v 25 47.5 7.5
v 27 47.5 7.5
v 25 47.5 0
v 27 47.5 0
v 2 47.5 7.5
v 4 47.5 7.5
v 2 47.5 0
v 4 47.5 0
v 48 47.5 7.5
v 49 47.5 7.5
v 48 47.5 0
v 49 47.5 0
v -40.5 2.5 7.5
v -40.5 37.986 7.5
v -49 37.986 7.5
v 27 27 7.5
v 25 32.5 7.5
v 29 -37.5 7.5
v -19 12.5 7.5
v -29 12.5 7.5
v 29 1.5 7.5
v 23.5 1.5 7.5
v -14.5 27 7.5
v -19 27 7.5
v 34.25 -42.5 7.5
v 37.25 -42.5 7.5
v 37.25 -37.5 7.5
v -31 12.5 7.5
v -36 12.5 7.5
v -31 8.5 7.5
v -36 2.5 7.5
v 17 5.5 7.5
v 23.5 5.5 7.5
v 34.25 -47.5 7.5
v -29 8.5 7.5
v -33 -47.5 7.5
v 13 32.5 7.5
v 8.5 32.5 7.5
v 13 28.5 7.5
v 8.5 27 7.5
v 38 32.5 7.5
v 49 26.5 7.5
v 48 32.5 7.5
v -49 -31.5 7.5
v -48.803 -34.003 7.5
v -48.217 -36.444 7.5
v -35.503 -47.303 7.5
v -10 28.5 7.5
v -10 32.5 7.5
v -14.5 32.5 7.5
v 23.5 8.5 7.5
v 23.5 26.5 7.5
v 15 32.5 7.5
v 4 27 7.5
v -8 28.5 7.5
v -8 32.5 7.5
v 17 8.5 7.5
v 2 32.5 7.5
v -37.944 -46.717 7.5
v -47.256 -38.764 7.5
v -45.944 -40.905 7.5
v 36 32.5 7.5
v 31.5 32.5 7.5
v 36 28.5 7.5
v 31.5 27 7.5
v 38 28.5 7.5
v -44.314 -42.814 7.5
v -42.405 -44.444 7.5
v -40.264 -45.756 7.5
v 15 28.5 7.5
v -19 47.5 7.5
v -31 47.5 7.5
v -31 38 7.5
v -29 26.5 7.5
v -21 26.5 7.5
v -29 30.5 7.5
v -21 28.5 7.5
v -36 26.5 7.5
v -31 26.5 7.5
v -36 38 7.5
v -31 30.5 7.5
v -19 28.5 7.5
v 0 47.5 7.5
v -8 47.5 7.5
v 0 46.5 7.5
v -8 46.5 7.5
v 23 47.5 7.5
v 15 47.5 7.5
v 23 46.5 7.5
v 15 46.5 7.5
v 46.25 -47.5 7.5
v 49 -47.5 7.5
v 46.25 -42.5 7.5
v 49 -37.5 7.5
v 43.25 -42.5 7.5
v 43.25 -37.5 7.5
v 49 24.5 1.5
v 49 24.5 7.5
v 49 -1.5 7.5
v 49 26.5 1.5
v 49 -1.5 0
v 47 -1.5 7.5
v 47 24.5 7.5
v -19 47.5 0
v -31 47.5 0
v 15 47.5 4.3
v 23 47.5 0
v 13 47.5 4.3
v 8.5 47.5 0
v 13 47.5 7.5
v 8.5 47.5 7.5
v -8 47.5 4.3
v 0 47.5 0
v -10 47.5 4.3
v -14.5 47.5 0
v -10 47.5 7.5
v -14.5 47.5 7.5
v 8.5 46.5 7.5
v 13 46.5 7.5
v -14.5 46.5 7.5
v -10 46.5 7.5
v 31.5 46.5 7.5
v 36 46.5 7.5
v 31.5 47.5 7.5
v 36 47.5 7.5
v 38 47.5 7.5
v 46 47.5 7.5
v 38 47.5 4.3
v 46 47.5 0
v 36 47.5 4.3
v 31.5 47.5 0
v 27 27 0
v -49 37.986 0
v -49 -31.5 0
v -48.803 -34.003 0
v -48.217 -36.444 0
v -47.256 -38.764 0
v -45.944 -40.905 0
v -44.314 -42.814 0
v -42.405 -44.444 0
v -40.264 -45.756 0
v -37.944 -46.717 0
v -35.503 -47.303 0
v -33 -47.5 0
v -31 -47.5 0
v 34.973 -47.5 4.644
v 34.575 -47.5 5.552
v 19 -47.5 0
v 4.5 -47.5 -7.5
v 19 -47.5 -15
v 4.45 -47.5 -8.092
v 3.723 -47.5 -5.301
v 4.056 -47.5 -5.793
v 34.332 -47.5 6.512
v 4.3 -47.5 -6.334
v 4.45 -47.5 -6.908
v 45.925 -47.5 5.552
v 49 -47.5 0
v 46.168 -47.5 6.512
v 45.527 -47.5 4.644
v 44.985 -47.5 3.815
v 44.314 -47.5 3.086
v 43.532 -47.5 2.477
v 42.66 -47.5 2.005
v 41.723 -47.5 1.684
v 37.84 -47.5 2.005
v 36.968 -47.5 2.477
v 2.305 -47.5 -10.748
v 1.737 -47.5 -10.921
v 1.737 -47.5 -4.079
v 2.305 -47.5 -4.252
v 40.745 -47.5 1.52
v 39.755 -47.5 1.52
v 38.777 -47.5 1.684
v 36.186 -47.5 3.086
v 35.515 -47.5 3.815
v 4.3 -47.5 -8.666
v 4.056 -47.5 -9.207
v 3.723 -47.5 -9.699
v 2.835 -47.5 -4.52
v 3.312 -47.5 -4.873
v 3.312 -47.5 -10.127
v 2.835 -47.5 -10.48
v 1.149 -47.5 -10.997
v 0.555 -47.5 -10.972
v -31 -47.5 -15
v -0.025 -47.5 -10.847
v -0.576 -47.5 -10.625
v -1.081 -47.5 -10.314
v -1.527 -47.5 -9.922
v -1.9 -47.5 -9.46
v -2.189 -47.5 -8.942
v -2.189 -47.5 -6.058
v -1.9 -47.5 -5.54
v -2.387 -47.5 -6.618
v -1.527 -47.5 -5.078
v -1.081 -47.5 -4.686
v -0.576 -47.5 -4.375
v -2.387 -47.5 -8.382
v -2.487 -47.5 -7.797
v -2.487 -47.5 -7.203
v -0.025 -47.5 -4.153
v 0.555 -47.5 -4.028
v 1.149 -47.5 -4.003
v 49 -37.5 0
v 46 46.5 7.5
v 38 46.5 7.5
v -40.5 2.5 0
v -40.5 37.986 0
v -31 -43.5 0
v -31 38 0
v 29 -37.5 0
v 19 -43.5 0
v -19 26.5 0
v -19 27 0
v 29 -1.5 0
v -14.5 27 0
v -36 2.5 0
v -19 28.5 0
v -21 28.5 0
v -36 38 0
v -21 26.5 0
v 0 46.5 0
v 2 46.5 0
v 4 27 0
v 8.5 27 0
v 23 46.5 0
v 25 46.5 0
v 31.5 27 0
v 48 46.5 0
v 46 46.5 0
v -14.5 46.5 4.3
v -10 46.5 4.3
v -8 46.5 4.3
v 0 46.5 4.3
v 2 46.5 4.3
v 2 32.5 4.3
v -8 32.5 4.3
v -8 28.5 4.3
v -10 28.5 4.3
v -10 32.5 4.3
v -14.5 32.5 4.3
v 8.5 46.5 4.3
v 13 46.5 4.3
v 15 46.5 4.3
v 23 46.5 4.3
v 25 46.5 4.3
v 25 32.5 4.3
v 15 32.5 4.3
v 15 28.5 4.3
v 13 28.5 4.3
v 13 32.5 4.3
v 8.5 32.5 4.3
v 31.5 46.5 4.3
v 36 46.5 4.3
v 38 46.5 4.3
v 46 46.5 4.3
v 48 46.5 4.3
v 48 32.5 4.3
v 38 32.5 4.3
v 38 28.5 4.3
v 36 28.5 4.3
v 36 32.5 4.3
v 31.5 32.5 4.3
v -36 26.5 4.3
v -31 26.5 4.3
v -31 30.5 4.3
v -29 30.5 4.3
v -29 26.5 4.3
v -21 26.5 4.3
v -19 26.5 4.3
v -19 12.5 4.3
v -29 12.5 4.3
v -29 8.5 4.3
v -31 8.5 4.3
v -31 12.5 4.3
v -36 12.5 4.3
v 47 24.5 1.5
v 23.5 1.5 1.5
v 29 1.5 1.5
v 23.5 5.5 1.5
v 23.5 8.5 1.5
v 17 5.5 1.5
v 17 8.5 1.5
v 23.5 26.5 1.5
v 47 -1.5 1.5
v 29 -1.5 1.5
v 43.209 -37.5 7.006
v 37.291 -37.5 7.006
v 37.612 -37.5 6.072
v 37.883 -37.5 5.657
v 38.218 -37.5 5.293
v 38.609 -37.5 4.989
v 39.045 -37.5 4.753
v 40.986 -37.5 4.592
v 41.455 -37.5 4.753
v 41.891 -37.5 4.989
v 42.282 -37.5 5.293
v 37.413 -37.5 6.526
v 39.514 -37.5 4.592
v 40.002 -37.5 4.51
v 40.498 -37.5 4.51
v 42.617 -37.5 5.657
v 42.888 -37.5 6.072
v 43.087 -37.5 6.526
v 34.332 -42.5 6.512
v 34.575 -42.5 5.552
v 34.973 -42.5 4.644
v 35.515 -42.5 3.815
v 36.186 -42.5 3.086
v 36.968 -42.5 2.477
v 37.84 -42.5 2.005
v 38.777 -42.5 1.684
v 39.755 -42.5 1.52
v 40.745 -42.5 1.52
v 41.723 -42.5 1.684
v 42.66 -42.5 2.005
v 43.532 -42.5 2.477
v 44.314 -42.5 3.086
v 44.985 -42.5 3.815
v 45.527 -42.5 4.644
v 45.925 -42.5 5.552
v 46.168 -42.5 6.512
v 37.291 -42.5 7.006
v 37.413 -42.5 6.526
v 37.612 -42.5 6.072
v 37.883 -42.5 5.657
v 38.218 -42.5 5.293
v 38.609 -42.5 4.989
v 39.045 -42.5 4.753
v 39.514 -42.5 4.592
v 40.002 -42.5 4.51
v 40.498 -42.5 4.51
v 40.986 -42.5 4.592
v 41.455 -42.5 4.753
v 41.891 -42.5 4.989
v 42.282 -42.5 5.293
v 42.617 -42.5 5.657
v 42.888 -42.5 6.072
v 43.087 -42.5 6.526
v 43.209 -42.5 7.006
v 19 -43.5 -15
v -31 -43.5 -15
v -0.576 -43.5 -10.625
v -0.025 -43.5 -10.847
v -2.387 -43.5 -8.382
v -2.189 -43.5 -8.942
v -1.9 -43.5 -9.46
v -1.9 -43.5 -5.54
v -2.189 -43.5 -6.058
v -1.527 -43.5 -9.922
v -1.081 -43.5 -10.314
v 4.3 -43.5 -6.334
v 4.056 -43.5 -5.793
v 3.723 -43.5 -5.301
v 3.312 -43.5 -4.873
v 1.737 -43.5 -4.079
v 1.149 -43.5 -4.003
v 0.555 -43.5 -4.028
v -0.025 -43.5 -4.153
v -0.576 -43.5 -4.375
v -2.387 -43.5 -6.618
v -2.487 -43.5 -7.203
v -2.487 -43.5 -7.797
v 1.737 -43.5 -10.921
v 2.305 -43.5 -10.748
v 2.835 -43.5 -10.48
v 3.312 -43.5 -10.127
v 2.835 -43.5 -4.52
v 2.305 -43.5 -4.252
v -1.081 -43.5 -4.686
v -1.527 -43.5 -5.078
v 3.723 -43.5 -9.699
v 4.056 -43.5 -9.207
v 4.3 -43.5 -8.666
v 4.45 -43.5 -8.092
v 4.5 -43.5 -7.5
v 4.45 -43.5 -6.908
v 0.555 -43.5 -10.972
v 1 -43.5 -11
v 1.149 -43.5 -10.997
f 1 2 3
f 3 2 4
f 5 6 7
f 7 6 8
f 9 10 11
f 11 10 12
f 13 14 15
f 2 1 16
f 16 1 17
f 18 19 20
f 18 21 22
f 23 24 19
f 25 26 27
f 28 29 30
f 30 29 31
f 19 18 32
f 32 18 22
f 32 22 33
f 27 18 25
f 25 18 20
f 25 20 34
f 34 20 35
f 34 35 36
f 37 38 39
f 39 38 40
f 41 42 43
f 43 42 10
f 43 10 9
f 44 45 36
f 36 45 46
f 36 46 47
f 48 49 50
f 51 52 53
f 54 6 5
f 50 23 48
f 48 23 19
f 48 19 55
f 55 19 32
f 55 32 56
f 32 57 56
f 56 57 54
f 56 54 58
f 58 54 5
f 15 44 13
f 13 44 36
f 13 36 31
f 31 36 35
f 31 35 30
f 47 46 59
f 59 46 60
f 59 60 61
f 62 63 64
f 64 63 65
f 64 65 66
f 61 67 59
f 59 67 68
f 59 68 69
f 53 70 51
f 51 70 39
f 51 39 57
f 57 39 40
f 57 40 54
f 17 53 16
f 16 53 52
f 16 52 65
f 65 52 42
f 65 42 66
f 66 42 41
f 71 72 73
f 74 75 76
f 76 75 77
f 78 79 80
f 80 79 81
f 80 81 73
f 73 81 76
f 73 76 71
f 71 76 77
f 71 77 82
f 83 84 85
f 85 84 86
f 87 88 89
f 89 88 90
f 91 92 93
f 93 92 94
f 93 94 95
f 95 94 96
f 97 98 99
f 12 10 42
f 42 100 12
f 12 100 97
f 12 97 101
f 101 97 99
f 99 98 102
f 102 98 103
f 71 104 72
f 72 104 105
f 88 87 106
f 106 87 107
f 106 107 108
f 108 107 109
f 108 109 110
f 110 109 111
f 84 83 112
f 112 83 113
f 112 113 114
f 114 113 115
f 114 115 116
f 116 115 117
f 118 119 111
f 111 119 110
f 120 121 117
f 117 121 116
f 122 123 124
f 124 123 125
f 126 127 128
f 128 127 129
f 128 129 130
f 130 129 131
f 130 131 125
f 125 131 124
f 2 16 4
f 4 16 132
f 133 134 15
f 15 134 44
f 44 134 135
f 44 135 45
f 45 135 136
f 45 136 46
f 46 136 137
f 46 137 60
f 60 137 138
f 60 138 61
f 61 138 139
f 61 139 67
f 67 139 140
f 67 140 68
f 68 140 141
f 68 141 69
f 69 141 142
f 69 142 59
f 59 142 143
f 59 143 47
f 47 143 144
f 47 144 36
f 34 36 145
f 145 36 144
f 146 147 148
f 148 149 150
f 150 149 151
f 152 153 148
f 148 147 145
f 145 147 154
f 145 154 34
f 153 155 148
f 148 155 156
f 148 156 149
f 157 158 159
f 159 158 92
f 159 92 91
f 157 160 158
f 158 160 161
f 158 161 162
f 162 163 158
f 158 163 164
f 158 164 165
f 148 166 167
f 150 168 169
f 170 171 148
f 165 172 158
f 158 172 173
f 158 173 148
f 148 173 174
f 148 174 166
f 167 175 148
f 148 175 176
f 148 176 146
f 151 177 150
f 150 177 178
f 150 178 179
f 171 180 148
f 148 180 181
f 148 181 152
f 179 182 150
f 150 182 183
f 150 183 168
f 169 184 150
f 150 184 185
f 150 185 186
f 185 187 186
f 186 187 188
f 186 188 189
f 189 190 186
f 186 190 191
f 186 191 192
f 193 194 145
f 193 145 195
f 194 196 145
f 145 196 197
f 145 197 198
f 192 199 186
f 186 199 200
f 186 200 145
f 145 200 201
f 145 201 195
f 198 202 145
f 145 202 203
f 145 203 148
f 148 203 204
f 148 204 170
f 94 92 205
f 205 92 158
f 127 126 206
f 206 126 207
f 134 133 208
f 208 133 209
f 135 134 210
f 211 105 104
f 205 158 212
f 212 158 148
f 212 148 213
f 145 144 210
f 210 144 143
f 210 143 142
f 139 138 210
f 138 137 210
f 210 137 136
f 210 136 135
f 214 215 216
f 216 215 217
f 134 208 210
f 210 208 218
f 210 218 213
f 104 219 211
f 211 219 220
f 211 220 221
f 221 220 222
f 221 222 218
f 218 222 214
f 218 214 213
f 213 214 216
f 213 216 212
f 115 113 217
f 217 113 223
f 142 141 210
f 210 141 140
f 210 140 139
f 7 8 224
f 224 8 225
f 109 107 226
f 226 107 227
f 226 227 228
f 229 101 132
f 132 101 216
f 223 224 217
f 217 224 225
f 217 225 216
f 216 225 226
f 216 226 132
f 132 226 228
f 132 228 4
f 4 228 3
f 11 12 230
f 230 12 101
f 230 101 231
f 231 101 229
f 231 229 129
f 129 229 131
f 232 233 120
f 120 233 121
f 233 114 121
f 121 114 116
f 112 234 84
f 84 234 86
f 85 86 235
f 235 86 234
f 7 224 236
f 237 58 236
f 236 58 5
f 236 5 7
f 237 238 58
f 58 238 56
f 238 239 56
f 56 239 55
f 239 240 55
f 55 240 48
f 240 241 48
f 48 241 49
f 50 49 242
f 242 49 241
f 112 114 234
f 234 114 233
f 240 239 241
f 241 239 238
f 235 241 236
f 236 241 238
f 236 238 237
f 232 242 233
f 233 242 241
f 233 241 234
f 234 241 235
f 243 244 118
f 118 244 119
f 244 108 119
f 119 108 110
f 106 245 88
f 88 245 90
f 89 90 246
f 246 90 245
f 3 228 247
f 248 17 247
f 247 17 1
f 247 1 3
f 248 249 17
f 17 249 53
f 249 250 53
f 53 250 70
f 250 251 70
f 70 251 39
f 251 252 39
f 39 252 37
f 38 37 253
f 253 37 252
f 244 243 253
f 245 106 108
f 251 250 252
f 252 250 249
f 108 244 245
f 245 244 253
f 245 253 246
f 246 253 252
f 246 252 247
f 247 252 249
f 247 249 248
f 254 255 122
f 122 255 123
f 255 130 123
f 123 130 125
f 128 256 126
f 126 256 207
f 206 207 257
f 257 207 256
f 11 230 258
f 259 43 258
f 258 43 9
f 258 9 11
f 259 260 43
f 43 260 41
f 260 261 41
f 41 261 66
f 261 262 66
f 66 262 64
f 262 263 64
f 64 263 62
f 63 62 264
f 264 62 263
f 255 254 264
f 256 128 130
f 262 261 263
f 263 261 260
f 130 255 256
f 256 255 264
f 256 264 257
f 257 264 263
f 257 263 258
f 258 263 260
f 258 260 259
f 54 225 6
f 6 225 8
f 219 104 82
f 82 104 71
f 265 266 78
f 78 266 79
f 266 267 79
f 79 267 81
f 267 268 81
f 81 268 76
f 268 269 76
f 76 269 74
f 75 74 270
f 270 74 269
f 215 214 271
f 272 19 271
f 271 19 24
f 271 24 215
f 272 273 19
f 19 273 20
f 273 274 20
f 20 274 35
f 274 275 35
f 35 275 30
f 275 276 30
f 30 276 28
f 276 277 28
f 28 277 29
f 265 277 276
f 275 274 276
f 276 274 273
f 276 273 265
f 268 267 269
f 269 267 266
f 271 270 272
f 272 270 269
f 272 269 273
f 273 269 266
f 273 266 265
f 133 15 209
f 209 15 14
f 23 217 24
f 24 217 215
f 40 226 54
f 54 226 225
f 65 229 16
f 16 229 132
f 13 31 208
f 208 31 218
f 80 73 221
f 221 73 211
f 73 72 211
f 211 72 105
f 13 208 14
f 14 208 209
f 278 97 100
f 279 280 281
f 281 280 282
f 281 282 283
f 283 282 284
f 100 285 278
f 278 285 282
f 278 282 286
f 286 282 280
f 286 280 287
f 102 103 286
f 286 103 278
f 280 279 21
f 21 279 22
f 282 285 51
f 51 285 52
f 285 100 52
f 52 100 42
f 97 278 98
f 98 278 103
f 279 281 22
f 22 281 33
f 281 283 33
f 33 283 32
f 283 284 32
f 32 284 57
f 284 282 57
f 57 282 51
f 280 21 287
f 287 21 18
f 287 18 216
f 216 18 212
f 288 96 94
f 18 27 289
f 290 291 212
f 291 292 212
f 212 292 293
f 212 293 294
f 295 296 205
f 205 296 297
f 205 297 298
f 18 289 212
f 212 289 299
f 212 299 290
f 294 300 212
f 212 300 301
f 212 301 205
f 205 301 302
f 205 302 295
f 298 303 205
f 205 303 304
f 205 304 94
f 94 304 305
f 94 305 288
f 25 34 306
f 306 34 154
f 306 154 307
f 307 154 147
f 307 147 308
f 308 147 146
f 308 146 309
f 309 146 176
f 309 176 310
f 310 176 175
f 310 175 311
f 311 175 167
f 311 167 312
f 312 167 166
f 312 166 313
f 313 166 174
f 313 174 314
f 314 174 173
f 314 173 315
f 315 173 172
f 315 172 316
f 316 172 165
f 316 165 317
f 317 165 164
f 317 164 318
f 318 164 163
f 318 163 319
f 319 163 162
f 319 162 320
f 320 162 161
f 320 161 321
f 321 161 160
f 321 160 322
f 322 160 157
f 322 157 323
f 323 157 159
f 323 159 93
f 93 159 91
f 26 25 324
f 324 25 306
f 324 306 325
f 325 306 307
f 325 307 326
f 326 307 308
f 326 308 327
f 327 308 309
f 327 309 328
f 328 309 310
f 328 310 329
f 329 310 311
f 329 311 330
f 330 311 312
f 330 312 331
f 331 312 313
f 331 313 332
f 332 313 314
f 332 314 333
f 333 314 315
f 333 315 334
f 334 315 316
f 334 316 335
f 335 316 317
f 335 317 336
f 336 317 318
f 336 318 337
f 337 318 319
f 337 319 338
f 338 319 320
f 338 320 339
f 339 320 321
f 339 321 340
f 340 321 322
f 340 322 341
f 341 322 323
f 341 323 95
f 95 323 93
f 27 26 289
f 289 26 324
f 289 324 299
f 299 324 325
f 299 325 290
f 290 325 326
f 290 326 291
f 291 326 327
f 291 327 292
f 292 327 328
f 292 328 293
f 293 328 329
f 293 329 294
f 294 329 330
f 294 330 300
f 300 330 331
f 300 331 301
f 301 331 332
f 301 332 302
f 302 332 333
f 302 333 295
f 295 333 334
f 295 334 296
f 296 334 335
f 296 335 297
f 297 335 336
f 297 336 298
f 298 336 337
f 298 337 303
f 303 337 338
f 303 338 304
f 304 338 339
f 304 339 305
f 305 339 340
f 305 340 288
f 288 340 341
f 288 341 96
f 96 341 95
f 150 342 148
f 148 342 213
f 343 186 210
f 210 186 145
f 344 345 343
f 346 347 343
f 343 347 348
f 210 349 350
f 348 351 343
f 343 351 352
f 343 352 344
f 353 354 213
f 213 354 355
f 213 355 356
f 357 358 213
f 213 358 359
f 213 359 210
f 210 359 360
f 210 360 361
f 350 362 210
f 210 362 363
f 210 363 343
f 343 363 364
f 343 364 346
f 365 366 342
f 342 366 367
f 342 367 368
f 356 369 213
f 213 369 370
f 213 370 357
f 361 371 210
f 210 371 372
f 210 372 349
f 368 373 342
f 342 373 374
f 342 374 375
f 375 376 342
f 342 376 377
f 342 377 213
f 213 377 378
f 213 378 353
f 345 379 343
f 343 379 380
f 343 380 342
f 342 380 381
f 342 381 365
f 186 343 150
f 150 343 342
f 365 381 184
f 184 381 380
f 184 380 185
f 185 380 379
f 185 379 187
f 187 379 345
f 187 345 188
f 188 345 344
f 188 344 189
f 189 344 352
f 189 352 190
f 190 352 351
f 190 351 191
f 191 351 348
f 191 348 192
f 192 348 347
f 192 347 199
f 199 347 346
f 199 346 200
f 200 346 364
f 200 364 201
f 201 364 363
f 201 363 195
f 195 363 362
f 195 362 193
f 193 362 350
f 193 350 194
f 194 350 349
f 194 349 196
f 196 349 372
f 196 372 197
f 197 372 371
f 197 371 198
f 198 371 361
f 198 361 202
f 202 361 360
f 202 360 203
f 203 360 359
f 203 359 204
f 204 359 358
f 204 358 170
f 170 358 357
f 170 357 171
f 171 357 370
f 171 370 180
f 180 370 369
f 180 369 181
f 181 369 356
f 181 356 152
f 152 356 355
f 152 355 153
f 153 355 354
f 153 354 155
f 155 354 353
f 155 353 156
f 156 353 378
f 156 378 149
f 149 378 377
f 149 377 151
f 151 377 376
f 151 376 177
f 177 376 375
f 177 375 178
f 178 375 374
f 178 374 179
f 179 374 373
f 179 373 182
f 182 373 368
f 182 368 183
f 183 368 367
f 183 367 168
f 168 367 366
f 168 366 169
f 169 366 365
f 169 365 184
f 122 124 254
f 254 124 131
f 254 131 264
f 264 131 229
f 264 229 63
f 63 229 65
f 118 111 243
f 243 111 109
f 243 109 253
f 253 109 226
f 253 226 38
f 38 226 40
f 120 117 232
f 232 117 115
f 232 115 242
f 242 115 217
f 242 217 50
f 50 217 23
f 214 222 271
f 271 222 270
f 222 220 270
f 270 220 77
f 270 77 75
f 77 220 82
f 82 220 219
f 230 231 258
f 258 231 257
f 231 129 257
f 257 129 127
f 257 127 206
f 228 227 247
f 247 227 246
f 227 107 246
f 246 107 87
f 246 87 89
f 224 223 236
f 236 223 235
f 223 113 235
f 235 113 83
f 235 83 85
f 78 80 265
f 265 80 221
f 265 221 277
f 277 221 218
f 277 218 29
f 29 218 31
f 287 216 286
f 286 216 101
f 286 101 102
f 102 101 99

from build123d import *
from OCP.BRepAlgoAPI import BRepAlgoAPI_Cut
from OCP.TopTools import TopTools_ListOfShape
from build123d.topology import SkipClean

# Parameters (mm, degrees)
BOSS_EXTRUDE1_DEPTH = 7.5
CUT_EXTRUDE1_DEPTH  = 3.2
CUT_EXTRUDE4_REACH  = 70.655
SKETCH5_W           = 3
SKETCH5_H           = 17
CUT_EXTRUDE5_REACH  = 70.655
SKETCH8_W           = 12
SKETCH8_H           = 37
CUT_EXTRUDE6_DEPTH  = 3.2
SKETCH10_W          = 10
SKETCH10_H          = 7.5
BOSS_EXTRUDE2_DEPTH = 27.486353186
SKETCH11_W          = 3
SKETCH11_H          = 7.5
CUT_EXTRUDE7_DEPTH  = 3.5
SKETCH12_W          = 2
SKETCH12_H          = 7.5
CUT_EXTRUDE8_DEPTH  = 4
SKETCH13_W          = 2
SKETCH13_H          = 7.5
CUT_EXTRUDE9_DEPTH  = 4
SKETCH14_W          = 7.5
SKETCH14_H          = 9.5
CUT_EXTRUDE10_DEPTH = 6
SKETCH16_W          = 1.5
SKETCH16_H          = 7.5
CUT_EXTRUDE12_DEPTH = 35.486360958
CUT_EXTRUDE13_DEPTH = 6
SKETCH19_W          = 17.5
SKETCH19_H          = 32
BOSS_EXTRUDE3_DEPTH = 7.5
CUT_EXTRUDE14_DEPTH = 6
SKETCH20_W          = 18
SKETCH20_H          = 6
CUT_EXTRUDE15_DEPTH = 6
SKETCH21_W          = 20
SKETCH21_H          = 33
CUT_EXTRUDE16_DEPTH = 11
CUT_EXTRUDE17_DEPTH = 5
CUT_EXTRUDE18_DEPTH = 10
SKETCH23_W          = 50
SKETCH23_H          = 4
BOSS_EXTRUDE4_DEPTH = 15
SKETCH25_R          = 3.5
CUT_EXTRUDE19_DEPTH = 10
SKETCH26_W          = 1.5
SKETCH26_H          = 20.5
CUT_EXTRUDE20_DEPTH = 8
SKETCH27_W          = 1.5
SKETCH27_H          = 20.5
CUT_EXTRUDE21_DEPTH = 8
SKETCH28_W          = 1.5
SKETCH28_H          = 20.5
CUT_EXTRUDE22_DEPTH = 8
CUT_EXTRUDE25_REACH = 73.857
SKETCH35_W          = 2
SKETCH35_H          = 2
SKETCH35_H_2        = 1
SKETCH36_W          = 1
SKETCH36_H          = 7.5
CUT_EXTRUDE26_DEPTH = 35.5
SKETCH37_W          = 7.5
SKETCH37_H          = 3
CUT_EXTRUDE27_DEPTH = 20


with BuildPart() as part:
    # Sketch1 → Boss-Extrude1 (new body)
    with BuildSketch(Plane.XY):
        with BuildLine():
            Line((-33, -47.5), (49, -47.5))
            Line((49, -47.5), (49, -29.5))
            Line((49, -29.5), (31.5, -29.5))
            Line((31.5, -29.5), (31.5, 2.5))
            Line((31.5, 2.5), (49, 2.5))
            Line((49, 2.5), (49, 47.5))
            Line((49, 47.5), (30, 47.5))
            Line((30, 47.5), (30, 30.5))
            Line((30, 30.5), (27, 30.5))
            Line((27, 30.5), (27, 47.5))
            Line((27, 47.5), (-49, 47.5))
            Line((-49, 47.5), (-49, -31.5))
            ThreePointArc((-49, -31.5), (-44.313708499, -42.813708499), (-33, -47.5))
        make_face()
    extrude(amount=BOSS_EXTRUDE1_DEPTH)

    # Sketch2 → Cut-Extrude1 (cut)
    with BuildSketch(Plane.XY.offset(7.5)):
        Polygon((30, 40), (31, 40), (31, 32.5), (36, 32.5), (36, 28.5), (38, 28.5), (38, 32.5), (48, 32.5), (48, 46.5), (38, 46.5), (38, 47.5), (36, 47.5), (36, 46.5), (31, 46.5), (31, 45), (30, 45), align=None)
        Polygon((-16, 40), (-15, 40), (-15, 32.5), (-10, 32.5), (-10, 28.5), (-8, 28.5), (-8, 32.5), (2, 32.5), (2, 46.5), (-8, 46.5), (-8, 47.5), (-10, 47.5), (-10, 46.5), (-15, 46.5), (-15, 45), (-16, 45), align=None)
        Polygon((7, 40), (8, 40), (8, 32.5), (13, 32.5), (13, 28.5), (15, 28.5), (15, 32.5), (25, 32.5), (25, 46.5), (15, 46.5), (15, 47.5), (13, 47.5), (13, 46.5), (8, 46.5), (8, 45), (7, 45), align=None)
    extrude(amount=-CUT_EXTRUDE1_DEPTH, mode=Mode.SUBTRACT)

    # Sketch5 → Cut-Extrude4 (cut, up to next)
    with BuildSketch(Plane.XY.offset(7.5), mode=Mode.PRIVATE) as cut_extrude4_sk1:
        with Locations((5.5, 39)):
            Rectangle(SKETCH5_W, SKETCH5_H)
    cut_extrude4_tool1 = extrude(cut_extrude4_sk1.sketch, amount=-CUT_EXTRUDE4_REACH, mode=Mode.PRIVATE) & part.part
    # Sketch5 → Cut-Extrude4 (cut, up to next)
    with BuildSketch(Plane.XY.offset(7.5), mode=Mode.PRIVATE) as cut_extrude4_sk2:
        with Locations((-17.5, 39)):
            Rectangle(SKETCH5_W, SKETCH5_H)
    cut_extrude4_tool2 = extrude(cut_extrude4_sk2.sketch, amount=-CUT_EXTRUDE4_REACH, mode=Mode.PRIVATE) & part.part
    add(cut_extrude4_tool1.solids().sort_by_distance((5.5, 39, 7.5))[0], mode=Mode.SUBTRACT)
    add(cut_extrude4_tool2.solids().sort_by_distance((-17.5, 39, 7.5))[0], mode=Mode.SUBTRACT)

    # Sketch8 → Cut-Extrude5 (cut, up to next)
    with BuildSketch(Plane.XY.offset(7.5), mode=Mode.PRIVATE) as cut_extrude5_sk1:
        with Locations((-43, 29)):
            Rectangle(SKETCH8_W, SKETCH8_H)
    cut_extrude5_tool1 = extrude(cut_extrude5_sk1.sketch, amount=-CUT_EXTRUDE5_REACH, mode=Mode.PRIVATE) & part.part
    add(cut_extrude5_tool1.solids().sort_by_distance((-43, 29, 7.5))[0], mode=Mode.SUBTRACT)

    # Sketch9 → Cut-Extrude6 (cut)
    with BuildSketch(Plane.XY.offset(7.5)):
        Polygon((-37, 20), (-36, 20), (-36, 12.5), (-31, 12.5), (-31, 8.5), (-29, 8.5), (-29, 12.5), (-19, 12.5), (-19, 26.5), (-29, 26.5), (-29, 30.5), (-31, 30.5), (-31, 26.5), (-36, 26.5), (-36, 25), (-37, 25), align=None)
    extrude(amount=-CUT_EXTRUDE6_DEPTH, mode=Mode.SUBTRACT)

    # Sketch10 → Boss-Extrude2 (add)
    with BuildSketch(Plane(origin=(0, 10.5, 0), x_dir=(1, 0, 0), z_dir=(0, 1, 0))):
        with Locations((-44, -3.75)):
            Rectangle(SKETCH10_W, SKETCH10_H)
    extrude(amount=BOSS_EXTRUDE2_DEPTH)

    # Sketch11 → Cut-Extrude7 (cut)
    with BuildSketch(Plane(origin=(0, 30.5, 0), x_dir=(1, 0, 0), z_dir=(0, 1, 0))):
        with Locations((-17.5, -3.75)):
            Rectangle(SKETCH11_W, SKETCH11_H)
        with Locations((5.5, -3.75)):
            Rectangle(SKETCH11_W, SKETCH11_H)
        with Locations((28.5, -3.75)):
            Rectangle(SKETCH11_W, SKETCH11_H)
    extrude(amount=-CUT_EXTRUDE7_DEPTH, mode=Mode.SUBTRACT)

    # Sketch12 → Cut-Extrude8 (cut)
    with BuildSketch(Plane(origin=(0, 10.5, 0), x_dir=(1, 0, 0), z_dir=(0, 1, 0))):
        with Locations((-38, -3.75)):
            Rectangle(SKETCH12_W, SKETCH12_H)
    extrude(amount=-CUT_EXTRUDE8_DEPTH, mode=Mode.SUBTRACT)

    # Sketch13 → Cut-Extrude9 (cut)
    with BuildSketch(Plane(origin=(0, 6.5, 0), x_dir=(1, 0, 0), z_dir=(0, 1, 0))):
        with Locations((-38, -3.75)):
            Rectangle(SKETCH13_W, SKETCH13_H)
    extrude(amount=-CUT_EXTRUDE9_DEPTH, mode=Mode.SUBTRACT)

    # Sketch14 → Cut-Extrude10 (cut)
    with BuildSketch(Plane.ZY.offset(37)):
        with Locations((3.75, 42.75)):
            Rectangle(SKETCH14_W, SKETCH14_H)
    extrude(amount=-CUT_EXTRUDE10_DEPTH, mode=Mode.SUBTRACT)


with BuildPart() as cut_extrude12_tool:
    # Sketch16 → Cut-Extrude12 (new body)
    with BuildSketch(Plane(origin=(0, 37.986353186, 0), x_dir=(1, 0, 0), z_dir=(0, 1, 0))):
        with Locations((-39.75, -3.75)):
            Rectangle(SKETCH16_W, SKETCH16_H)
    extrude(amount=-CUT_EXTRUDE12_DEPTH)


with BuildPart() as part_1:
    add(part.part)

    # Cut-Extrude12: cut by cut_extrude12_tool, with a tolerance
    cut_extrude12_stock = TopTools_ListOfShape()
    cut_extrude12_stock.Append(part_1.part.wrapped)
    cut_extrude12_tools = TopTools_ListOfShape()
    cut_extrude12_tools.Append(cut_extrude12_tool.part.wrapped)
    cut_extrude12_cut = BRepAlgoAPI_Cut()
    cut_extrude12_cut.SetArguments(cut_extrude12_stock)
    cut_extrude12_cut.SetTools(cut_extrude12_tools)
    cut_extrude12_cut.SetFuzzyValue(0.00001)
    cut_extrude12_cut.Build()
    add(Compound.cast(cut_extrude12_cut.Shape()).solids(), mode=Mode.REPLACE)

    # Sketch18 → Cut-Extrude13 (cut)
    with SkipClean():  # the faces are left unmerged after this step: merging them gives an invalid solid
        with BuildSketch(Plane.XY.offset(7.5)):
            Polygon((23.5, 5.5), (23.5, 1.5), (47, 1.5), (47, 24.5), (49, 24.5), (49, 26.5), (47, 26.5), (23.5, 26.5), (23.5, 8.5), (17, 8.5), (17, 5.5), align=None)
        extrude(amount=-CUT_EXTRUDE13_DEPTH, mode=Mode.SUBTRACT)

    # Sketch19 → Boss-Extrude3 (add)
    with SkipClean():  # the faces are left unmerged after this step: merging them gives an invalid solid
        with BuildSketch(Plane(origin=(0, 0, 0), x_dir=(-1, 0, 0), z_dir=(0, 0, -1))):
            with Locations((-40.25, -13.5)):
                Rectangle(SKETCH19_W, SKETCH19_H)
        extrude(amount=-BOSS_EXTRUDE3_DEPTH)

    # Sketch18<2> → Cut-Extrude14 (cut)
    with SkipClean():  # the faces are left unmerged after this step: merging them gives an invalid solid
        with BuildSketch(Plane.XY.offset(7.5)):
            Polygon((23.5, 5.5), (23.5, 1.5), (47, 1.5), (47, 24.5), (49, 24.5), (49, 26.5), (47, 26.5), (23.5, 26.5), (23.5, 8.5), (17, 8.5), (17, 5.5), align=None)
        extrude(amount=-CUT_EXTRUDE14_DEPTH, mode=Mode.SUBTRACT)

    # Sketch20 → Cut-Extrude15 (cut)
    with SkipClean():  # the faces are left unmerged after this step: merging them gives an invalid solid
        with BuildSketch(Plane.XY.offset(7.5)):
            with Locations((38, -1.5)):
                Rectangle(SKETCH20_W, SKETCH20_H)
        extrude(amount=-CUT_EXTRUDE15_DEPTH, mode=Mode.SUBTRACT)

    # Sketch21 → Cut-Extrude16 (cut)
    with SkipClean():  # the faces are left unmerged after this step: merging them gives an invalid solid
        with BuildSketch(Plane.XY.offset(7.5)):
            with Locations((39, -21)):
                Rectangle(SKETCH21_W, SKETCH21_H)
        extrude(amount=-CUT_EXTRUDE16_DEPTH, mode=Mode.SUBTRACT)

    # Sketch3 → Cut-Extrude17 (cut)
    with SkipClean():  # the faces are left unmerged after this step: merging them gives an invalid solid
        with BuildSketch(Plane.XZ.offset(47.5)):
            with BuildLine():
                Line((34.25, 7.5), (46.25, 7.5))
                ThreePointArc((46.25, 7.5), (40.25, 1.5), (34.25, 7.5))
            make_face()
        extrude(amount=-CUT_EXTRUDE17_DEPTH, mode=Mode.SUBTRACT)

    # Sketch22 → Cut-Extrude18 (cut)
    with SkipClean():  # the faces are left unmerged after this step: merging them gives an invalid solid
        with BuildSketch(Plane.XZ.offset(42.5)):
            with BuildLine():
                Line((37.25, 7.5), (43.25, 7.5))
                ThreePointArc((43.25, 7.5), (40.25, 4.5), (37.25, 7.5))
            make_face()
        extrude(amount=-CUT_EXTRUDE18_DEPTH, mode=Mode.SUBTRACT)

    # Sketch23 → Boss-Extrude4 (add)
    with SkipClean():  # the faces are left unmerged after this step: merging them gives an invalid solid
        with BuildSketch(Plane(origin=(0, 0, 0), x_dir=(-1, 0, 0), z_dir=(0, 0, -1))):
            with Locations((6, -45.5)):
                Rectangle(SKETCH23_W, SKETCH23_H)
        extrude(amount=BOSS_EXTRUDE4_DEPTH)

    # Sketch25 → Cut-Extrude19 (cut)
    with SkipClean():  # the faces are left unmerged after this step: merging them gives an invalid solid
        with BuildSketch(Plane(origin=(0, -47.5, 0), x_dir=(-1, 0, 0), z_dir=(0, -1, 0))):
            with Locations(Location((-1, 7.5, 0), (0, 0, 180))):
                Circle(SKETCH25_R)
        extrude(amount=-CUT_EXTRUDE19_DEPTH, mode=Mode.SUBTRACT)

    # Sketch26 → Cut-Extrude20 (cut)
    with SkipClean():  # the faces are left unmerged after this step: merging them gives an invalid solid
        with BuildSketch(Plane(origin=(0, 0, 0), x_dir=(-1, 0, 0), z_dir=(0, 0, -1))):
            with Locations((-30.75, 37.25)):
                Rectangle(SKETCH26_W, SKETCH26_H)
        extrude(amount=-CUT_EXTRUDE20_DEPTH, mode=Mode.SUBTRACT)

    # Sketch27 → Cut-Extrude21 (cut)
    with SkipClean():  # the faces are left unmerged after this step: merging them gives an invalid solid
        with BuildSketch(Plane(origin=(0, 0, 0), x_dir=(-1, 0, 0), z_dir=(0, 0, -1))):
            with Locations((-7.75, 37.25)):
                Rectangle(SKETCH27_W, SKETCH27_H)
        extrude(amount=-CUT_EXTRUDE21_DEPTH, mode=Mode.SUBTRACT)

    # Sketch28 → Cut-Extrude22 (cut)
    with SkipClean():  # the faces are left unmerged after this step: merging them gives an invalid solid
        with BuildSketch(Plane(origin=(0, 0, 0), x_dir=(-1, 0, 0), z_dir=(0, 0, -1))):
            with Locations((15.25, 37.25)):
                Rectangle(SKETCH28_W, SKETCH28_H)
        extrude(amount=-CUT_EXTRUDE22_DEPTH, mode=Mode.SUBTRACT)

    # Sketch35 → Cut-Extrude25 (cut, up to next)
    with BuildSketch(Plane.XY.offset(7.5), mode=Mode.PRIVATE) as cut_extrude25_sk1:
        with Locations((-20, 27.5)):
            Rectangle(SKETCH35_W, SKETCH35_H)
    cut_extrude25_tool1 = extrude(cut_extrude25_sk1.sketch, amount=-CUT_EXTRUDE25_REACH, mode=Mode.PRIVATE) & part_1.part
    # Sketch35 → Cut-Extrude25 (cut, up to next)
    with BuildSketch(Plane.XY.offset(7.5), mode=Mode.PRIVATE) as cut_extrude25_sk2:
        with Locations((1, 47)):
            Rectangle(SKETCH35_W, SKETCH35_H_2)
    cut_extrude25_tool2 = extrude(cut_extrude25_sk2.sketch, amount=-CUT_EXTRUDE25_REACH, mode=Mode.PRIVATE) & part_1.part
    # Sketch35 → Cut-Extrude25 (cut, up to next)
    with BuildSketch(Plane.XY.offset(7.5), mode=Mode.PRIVATE) as cut_extrude25_sk3:
        with Locations((24, 47)):
            Rectangle(SKETCH35_W, SKETCH35_H_2)
    cut_extrude25_tool3 = extrude(cut_extrude25_sk3.sketch, amount=-CUT_EXTRUDE25_REACH, mode=Mode.PRIVATE) & part_1.part
    # Sketch35 → Cut-Extrude25 (cut, up to next)
    with BuildSketch(Plane.XY.offset(7.5), mode=Mode.PRIVATE) as cut_extrude25_sk4:
        with Locations((47, 47)):
            Rectangle(SKETCH35_W, SKETCH35_H_2)
    cut_extrude25_tool4 = extrude(cut_extrude25_sk4.sketch, amount=-CUT_EXTRUDE25_REACH, mode=Mode.PRIVATE) & part_1.part
    add(cut_extrude25_tool1.solids().sort_by_distance((-20, 27.5, 7.5))[0], mode=Mode.SUBTRACT)
    add(cut_extrude25_tool2.solids().sort_by_distance((1, 47, 7.5))[0], mode=Mode.SUBTRACT)
    add(cut_extrude25_tool3.solids().sort_by_distance((24, 47, 7.5))[0], mode=Mode.SUBTRACT)
    add(cut_extrude25_tool4.solids().sort_by_distance((47, 47, 7.5))[0], mode=Mode.SUBTRACT)

    # Sketch36 → Cut-Extrude26 (cut)
    with SkipClean():  # the faces are left unmerged after this step: merging them gives an invalid solid
        with BuildSketch(Plane(origin=(0, 38, 0), x_dir=(1, 0, 0), z_dir=(0, 1, 0))):
            with Locations((-36.5, -3.75)):
                Rectangle(SKETCH36_W, SKETCH36_H)
        extrude(amount=-CUT_EXTRUDE26_DEPTH, mode=Mode.SUBTRACT)

    # Sketch37 → Cut-Extrude27 (cut)
    with SkipClean():  # the faces are left unmerged after this step: merging them gives an invalid solid
        with BuildSketch(Plane(origin=(49, 0, 0), x_dir=(0, 0, -1), z_dir=(1, 0, 0))):
            with Locations((-3.75, -3)):
                Rectangle(SKETCH37_W, SKETCH37_H)
        extrude(amount=-CUT_EXTRUDE27_DEPTH, mode=Mode.SUBTRACT)


solid = part_1.part
